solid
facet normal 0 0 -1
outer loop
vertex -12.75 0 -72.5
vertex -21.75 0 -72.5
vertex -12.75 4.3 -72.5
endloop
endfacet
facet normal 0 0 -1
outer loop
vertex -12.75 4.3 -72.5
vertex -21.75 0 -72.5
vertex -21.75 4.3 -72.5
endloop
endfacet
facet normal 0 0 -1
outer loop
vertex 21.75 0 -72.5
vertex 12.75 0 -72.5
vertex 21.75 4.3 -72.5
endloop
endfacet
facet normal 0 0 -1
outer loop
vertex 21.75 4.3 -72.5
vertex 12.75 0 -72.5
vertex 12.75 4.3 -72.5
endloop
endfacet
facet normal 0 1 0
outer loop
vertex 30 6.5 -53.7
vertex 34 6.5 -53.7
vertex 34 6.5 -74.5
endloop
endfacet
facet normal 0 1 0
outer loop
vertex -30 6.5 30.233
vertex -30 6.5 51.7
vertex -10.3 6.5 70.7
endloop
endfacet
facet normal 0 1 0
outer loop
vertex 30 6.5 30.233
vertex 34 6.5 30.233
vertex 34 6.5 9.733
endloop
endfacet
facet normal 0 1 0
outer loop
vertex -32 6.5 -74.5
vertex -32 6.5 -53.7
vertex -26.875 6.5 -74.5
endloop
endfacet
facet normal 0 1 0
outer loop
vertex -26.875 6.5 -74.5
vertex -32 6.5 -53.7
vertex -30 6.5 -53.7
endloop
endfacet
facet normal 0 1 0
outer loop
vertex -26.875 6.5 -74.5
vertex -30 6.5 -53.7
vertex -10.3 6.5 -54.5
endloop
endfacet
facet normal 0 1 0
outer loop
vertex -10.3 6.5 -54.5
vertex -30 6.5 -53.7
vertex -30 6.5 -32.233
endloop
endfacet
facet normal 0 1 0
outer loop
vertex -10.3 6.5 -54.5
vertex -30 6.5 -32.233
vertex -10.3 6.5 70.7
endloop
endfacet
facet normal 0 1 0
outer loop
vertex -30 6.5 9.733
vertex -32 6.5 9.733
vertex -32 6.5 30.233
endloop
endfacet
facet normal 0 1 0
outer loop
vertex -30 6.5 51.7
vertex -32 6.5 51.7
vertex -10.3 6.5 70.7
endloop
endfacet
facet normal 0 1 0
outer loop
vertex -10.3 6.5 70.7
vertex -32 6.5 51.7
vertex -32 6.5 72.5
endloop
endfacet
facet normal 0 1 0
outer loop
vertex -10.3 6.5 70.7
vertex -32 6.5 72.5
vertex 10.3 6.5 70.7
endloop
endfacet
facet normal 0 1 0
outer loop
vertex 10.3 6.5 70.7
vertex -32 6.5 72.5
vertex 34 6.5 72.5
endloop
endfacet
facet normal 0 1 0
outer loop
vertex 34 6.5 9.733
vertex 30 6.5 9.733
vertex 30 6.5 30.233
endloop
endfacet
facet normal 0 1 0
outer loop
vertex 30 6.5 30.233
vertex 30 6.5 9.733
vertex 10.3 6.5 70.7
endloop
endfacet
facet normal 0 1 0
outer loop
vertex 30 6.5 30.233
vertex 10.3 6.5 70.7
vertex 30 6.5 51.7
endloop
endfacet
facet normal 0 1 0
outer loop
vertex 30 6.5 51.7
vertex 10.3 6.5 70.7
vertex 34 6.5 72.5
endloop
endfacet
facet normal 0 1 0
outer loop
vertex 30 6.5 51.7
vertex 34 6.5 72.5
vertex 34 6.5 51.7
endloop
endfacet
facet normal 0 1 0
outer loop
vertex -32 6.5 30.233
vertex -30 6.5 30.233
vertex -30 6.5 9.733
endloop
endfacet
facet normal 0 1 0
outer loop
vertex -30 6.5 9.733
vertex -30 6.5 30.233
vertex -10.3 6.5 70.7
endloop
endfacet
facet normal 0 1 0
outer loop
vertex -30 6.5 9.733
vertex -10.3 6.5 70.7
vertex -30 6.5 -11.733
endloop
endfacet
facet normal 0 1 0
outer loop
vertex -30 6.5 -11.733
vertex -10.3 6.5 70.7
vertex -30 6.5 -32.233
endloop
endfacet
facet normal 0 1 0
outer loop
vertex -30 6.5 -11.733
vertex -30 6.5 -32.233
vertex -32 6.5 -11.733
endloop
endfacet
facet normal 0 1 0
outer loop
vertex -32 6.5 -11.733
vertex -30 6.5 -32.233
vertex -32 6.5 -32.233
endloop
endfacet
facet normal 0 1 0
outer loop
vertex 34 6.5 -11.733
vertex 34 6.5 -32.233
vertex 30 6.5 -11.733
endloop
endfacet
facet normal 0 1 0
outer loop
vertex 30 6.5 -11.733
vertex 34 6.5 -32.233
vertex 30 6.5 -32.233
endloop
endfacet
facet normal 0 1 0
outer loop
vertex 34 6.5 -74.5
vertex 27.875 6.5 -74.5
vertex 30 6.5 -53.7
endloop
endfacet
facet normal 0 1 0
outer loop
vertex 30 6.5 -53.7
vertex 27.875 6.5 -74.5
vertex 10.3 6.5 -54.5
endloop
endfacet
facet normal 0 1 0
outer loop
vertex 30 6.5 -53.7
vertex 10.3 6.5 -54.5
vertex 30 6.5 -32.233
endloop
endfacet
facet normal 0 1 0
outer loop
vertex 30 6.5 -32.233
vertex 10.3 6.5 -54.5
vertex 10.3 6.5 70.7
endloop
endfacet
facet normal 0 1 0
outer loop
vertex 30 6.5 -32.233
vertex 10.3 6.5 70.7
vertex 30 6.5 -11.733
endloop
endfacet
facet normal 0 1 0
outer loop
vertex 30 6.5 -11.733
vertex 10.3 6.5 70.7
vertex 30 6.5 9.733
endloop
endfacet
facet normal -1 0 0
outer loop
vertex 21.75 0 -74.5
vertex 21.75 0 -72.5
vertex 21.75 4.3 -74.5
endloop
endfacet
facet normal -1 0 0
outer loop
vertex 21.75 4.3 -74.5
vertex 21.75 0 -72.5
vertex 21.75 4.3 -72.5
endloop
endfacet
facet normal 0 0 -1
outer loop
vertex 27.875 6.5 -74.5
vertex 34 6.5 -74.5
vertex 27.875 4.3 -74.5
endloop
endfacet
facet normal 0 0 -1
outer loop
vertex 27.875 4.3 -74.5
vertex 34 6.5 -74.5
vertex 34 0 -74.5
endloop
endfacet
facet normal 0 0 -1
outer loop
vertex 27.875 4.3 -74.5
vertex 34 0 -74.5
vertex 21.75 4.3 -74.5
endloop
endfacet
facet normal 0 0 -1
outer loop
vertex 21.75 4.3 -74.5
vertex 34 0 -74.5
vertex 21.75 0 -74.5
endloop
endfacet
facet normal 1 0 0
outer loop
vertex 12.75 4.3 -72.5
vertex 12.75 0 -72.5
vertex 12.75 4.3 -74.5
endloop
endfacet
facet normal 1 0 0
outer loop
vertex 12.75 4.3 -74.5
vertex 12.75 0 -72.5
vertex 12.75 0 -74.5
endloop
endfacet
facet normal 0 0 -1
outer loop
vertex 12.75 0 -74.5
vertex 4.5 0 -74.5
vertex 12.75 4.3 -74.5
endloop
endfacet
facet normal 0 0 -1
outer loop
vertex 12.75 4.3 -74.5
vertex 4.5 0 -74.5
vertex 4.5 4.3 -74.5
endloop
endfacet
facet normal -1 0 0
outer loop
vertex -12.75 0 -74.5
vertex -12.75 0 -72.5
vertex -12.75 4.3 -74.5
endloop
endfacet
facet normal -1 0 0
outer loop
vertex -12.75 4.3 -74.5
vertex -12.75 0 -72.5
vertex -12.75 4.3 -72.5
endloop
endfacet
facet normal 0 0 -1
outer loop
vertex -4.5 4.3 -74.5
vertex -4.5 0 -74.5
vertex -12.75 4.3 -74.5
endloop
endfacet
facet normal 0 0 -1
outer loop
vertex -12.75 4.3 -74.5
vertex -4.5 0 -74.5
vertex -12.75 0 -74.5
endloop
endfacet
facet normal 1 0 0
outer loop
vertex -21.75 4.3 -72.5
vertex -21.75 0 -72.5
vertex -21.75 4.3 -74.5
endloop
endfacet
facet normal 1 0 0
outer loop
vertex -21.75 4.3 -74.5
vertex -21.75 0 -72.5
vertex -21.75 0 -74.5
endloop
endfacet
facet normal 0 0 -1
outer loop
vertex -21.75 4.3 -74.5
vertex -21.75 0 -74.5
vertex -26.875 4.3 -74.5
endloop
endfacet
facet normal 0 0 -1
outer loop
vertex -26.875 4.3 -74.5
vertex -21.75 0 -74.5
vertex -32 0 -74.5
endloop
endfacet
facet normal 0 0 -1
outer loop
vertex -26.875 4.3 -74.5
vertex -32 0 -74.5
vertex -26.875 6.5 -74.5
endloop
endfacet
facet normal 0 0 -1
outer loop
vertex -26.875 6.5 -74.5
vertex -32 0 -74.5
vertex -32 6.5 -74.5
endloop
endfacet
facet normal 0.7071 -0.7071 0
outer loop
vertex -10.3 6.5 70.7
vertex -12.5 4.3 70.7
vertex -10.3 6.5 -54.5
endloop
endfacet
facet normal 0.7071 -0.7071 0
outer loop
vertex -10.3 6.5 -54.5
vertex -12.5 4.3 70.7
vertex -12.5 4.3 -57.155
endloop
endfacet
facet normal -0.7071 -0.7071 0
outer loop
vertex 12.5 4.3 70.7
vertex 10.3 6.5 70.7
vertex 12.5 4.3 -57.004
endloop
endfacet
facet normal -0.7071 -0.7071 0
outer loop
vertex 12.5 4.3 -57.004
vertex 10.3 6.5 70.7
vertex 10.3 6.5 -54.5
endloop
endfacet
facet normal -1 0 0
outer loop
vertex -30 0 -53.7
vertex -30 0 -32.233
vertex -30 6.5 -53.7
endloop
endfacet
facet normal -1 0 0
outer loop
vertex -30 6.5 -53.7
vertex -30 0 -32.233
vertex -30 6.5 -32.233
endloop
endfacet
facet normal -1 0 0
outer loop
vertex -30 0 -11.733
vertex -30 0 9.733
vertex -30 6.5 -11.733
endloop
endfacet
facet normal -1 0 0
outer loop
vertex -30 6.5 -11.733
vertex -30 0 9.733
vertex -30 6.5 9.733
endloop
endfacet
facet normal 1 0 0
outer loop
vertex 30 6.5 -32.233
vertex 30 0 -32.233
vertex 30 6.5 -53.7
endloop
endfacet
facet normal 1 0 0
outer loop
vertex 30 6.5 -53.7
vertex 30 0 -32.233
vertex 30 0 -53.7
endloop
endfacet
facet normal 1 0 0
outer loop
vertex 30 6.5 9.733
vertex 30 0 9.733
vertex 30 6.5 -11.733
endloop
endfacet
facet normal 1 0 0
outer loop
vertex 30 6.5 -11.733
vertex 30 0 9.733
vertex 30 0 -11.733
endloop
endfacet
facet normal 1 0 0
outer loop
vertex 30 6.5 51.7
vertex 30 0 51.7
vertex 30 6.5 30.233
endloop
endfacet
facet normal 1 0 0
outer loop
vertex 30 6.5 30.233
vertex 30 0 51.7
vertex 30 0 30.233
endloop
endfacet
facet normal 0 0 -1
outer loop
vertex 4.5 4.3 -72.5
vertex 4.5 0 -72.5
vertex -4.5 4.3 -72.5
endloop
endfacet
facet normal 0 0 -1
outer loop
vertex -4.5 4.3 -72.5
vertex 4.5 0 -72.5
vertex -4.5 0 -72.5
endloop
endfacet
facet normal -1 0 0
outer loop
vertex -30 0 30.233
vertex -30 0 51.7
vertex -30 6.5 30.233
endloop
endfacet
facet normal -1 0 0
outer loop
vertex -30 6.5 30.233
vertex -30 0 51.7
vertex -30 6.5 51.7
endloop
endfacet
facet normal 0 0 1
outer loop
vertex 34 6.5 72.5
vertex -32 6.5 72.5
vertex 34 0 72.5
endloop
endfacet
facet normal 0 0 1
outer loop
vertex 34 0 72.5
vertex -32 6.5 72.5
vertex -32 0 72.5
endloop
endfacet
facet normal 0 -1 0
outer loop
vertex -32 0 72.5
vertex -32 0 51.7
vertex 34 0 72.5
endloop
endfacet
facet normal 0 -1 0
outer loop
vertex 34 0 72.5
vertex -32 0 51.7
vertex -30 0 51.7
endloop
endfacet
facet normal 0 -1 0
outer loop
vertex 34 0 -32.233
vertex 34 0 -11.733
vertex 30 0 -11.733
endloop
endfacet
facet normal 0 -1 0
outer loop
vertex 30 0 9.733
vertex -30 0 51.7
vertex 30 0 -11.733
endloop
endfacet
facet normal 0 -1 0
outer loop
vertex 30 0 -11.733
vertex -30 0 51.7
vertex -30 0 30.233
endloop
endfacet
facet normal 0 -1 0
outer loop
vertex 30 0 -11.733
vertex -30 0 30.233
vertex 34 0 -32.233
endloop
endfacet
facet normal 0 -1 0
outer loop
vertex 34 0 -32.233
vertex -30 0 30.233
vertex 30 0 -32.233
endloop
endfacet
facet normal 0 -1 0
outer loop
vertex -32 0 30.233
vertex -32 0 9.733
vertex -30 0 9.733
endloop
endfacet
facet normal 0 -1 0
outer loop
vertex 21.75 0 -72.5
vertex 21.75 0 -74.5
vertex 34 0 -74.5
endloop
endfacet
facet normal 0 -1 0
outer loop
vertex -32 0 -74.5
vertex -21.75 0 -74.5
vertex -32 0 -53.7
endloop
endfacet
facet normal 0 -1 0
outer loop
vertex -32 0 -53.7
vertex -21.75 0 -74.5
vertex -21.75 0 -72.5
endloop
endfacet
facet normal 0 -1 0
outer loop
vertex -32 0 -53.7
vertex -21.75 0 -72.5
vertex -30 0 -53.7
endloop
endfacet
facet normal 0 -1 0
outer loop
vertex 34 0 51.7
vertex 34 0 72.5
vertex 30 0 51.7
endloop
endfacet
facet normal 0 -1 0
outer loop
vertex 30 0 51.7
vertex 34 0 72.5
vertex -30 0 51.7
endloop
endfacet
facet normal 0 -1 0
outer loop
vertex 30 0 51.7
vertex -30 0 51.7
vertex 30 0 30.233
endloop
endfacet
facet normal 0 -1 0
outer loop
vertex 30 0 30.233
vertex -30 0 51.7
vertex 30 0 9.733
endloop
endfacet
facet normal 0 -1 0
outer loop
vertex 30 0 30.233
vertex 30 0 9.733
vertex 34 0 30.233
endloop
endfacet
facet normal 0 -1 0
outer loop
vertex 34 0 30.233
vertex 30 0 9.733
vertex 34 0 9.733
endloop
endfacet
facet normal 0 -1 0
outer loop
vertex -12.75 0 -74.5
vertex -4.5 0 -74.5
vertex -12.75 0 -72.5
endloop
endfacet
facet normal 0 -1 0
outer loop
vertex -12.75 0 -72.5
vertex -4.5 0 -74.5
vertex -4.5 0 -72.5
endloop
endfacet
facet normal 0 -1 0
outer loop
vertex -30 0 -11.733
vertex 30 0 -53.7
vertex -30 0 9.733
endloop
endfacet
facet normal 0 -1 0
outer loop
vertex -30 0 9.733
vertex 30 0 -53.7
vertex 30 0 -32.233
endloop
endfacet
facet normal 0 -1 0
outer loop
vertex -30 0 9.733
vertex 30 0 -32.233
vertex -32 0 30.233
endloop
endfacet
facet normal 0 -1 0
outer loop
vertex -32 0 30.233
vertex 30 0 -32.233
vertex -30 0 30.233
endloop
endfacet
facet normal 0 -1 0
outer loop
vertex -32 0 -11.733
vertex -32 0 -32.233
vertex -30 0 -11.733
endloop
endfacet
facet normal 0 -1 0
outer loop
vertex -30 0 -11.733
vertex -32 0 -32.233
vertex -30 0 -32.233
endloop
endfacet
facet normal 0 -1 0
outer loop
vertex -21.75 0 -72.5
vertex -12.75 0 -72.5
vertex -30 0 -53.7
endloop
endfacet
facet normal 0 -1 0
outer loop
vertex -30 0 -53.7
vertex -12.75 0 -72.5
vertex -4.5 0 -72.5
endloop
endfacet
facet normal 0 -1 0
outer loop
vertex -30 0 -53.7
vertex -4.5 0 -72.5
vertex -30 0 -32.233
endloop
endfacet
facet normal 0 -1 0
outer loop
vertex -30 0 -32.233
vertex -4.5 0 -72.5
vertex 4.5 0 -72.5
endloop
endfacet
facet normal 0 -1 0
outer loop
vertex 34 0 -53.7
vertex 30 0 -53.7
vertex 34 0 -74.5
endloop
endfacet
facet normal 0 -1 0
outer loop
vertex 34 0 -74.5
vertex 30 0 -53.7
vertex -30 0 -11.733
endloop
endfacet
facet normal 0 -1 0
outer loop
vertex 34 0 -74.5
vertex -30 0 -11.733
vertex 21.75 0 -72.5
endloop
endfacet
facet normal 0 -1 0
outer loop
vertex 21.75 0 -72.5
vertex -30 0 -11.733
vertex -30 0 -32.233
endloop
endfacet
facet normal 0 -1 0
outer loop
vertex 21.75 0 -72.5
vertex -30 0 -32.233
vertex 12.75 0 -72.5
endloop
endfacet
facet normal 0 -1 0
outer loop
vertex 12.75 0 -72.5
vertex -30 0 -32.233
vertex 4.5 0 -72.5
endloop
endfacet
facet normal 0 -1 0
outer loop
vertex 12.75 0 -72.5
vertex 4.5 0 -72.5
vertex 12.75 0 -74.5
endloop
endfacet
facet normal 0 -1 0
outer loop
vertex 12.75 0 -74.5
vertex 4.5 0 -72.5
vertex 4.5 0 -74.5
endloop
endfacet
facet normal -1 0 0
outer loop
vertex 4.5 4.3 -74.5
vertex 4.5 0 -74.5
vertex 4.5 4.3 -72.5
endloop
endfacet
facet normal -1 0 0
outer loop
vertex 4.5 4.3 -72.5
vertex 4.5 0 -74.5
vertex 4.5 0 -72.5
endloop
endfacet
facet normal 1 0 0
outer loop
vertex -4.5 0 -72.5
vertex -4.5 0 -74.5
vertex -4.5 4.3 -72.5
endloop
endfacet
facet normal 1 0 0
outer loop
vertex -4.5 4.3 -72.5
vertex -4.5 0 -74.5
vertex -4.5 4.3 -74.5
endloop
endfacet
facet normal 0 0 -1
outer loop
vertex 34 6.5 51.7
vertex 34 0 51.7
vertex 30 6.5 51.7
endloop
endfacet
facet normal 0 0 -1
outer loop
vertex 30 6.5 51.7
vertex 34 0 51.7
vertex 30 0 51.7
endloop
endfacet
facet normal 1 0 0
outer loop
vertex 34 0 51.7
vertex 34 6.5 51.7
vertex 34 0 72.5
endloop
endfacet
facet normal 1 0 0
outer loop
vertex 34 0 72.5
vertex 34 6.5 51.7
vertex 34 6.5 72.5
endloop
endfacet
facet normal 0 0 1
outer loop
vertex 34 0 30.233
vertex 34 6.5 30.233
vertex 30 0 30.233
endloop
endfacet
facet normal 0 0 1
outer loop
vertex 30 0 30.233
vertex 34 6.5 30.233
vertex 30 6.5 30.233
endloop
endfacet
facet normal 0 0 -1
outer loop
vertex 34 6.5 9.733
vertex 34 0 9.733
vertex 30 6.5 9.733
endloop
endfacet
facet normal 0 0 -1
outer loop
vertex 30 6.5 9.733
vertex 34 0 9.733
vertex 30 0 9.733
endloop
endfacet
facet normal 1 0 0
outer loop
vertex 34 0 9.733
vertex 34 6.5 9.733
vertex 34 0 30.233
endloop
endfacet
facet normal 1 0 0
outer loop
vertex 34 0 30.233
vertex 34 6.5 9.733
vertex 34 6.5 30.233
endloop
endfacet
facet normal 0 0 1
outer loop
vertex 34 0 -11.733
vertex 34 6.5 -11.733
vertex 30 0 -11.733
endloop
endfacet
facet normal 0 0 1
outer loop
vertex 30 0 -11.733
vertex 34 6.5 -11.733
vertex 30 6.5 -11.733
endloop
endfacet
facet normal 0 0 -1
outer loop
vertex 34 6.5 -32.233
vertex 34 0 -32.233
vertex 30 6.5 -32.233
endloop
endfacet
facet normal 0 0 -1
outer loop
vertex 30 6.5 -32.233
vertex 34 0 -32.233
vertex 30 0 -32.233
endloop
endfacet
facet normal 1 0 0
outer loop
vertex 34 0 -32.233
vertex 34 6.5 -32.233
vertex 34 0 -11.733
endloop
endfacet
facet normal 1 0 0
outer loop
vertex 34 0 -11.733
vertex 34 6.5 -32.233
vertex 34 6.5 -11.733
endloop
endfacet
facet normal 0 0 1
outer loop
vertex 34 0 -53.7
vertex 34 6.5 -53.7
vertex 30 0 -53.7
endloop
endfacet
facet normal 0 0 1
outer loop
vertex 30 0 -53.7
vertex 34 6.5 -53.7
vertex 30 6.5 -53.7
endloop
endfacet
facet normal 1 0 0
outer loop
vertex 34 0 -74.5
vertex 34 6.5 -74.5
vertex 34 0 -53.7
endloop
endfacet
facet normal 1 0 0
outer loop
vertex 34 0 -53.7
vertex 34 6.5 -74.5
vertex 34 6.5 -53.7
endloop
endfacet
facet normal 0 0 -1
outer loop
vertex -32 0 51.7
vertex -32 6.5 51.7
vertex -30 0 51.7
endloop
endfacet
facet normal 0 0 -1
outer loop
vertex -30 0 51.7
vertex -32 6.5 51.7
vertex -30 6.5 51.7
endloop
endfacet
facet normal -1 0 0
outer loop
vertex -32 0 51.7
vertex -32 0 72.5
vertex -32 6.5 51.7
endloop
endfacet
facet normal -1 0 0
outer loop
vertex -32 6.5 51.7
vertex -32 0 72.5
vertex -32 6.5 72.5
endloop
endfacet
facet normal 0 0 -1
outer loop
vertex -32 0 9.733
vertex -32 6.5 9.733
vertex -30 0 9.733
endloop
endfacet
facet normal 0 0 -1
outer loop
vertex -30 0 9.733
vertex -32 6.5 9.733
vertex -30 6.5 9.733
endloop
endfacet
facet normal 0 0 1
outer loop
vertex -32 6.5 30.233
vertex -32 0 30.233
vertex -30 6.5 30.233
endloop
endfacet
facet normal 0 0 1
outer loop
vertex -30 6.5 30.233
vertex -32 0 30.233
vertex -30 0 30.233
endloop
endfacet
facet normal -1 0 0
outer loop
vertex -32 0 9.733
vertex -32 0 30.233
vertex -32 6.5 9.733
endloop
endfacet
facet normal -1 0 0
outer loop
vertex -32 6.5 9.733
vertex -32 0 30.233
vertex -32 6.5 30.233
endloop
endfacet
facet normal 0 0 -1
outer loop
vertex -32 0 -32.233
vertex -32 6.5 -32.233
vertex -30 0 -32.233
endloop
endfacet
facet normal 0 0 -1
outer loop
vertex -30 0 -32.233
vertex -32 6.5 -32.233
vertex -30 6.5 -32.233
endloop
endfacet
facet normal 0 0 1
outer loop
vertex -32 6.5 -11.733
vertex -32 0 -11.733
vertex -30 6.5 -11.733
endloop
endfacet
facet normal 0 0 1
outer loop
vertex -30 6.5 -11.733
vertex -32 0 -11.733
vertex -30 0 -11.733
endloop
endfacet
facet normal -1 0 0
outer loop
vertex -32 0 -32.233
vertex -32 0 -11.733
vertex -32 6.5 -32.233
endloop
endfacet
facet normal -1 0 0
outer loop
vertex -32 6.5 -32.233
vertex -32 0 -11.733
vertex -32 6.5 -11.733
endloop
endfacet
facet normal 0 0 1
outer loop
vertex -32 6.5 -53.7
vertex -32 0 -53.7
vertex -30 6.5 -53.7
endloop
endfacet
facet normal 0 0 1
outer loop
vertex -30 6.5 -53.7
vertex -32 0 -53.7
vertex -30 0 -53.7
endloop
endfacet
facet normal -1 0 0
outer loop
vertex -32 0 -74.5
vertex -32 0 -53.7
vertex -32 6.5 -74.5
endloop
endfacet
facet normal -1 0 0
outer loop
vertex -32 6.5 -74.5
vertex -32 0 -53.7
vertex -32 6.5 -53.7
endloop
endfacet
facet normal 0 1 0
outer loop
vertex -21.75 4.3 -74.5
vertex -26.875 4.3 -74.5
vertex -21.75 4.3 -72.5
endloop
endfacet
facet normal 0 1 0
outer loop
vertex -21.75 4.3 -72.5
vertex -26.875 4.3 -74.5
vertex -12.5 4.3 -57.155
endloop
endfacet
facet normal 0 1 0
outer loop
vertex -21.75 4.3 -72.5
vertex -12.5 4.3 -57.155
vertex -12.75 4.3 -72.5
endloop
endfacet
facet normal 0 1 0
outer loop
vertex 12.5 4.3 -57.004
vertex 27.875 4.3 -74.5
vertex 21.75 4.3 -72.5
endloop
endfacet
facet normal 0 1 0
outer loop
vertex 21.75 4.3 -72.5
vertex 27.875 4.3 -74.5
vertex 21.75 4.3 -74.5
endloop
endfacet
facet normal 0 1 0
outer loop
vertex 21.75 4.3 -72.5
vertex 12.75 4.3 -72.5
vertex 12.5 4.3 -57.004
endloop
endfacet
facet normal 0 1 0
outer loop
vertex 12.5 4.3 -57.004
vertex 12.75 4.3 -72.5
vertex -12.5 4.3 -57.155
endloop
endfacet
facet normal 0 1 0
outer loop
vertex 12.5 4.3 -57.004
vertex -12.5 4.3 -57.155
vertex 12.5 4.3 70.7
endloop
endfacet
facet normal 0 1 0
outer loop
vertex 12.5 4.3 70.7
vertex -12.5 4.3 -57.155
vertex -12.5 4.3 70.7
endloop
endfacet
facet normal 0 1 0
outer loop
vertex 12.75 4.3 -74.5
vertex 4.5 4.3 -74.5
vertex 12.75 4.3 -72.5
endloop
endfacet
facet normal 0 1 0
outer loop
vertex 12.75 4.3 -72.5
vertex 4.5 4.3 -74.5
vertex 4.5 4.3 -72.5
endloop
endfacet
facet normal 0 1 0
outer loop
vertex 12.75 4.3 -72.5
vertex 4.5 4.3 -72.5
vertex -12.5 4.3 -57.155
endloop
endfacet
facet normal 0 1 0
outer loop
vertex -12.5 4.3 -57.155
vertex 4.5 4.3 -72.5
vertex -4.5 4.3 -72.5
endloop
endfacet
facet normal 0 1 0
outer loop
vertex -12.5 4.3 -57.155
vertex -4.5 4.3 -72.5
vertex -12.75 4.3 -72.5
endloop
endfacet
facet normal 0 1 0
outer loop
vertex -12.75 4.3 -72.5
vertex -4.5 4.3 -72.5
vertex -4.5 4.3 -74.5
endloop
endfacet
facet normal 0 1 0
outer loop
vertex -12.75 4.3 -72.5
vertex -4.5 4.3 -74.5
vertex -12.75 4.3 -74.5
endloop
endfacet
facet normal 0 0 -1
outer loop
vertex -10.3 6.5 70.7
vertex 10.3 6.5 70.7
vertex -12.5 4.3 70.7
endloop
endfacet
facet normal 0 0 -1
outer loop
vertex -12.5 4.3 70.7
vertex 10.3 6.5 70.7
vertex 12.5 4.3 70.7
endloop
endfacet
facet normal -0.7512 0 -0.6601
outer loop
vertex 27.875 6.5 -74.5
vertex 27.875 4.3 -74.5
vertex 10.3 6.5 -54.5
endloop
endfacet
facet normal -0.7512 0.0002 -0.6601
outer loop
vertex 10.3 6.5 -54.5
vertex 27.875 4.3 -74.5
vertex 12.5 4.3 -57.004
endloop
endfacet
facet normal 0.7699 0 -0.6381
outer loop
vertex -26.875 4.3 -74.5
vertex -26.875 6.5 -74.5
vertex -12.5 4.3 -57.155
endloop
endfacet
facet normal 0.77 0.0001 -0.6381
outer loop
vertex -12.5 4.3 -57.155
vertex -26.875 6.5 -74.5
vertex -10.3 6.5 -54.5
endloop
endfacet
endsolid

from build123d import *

# Parameters (mm, degrees)
SKETCH_4_W          = 60
SKETCH_4_H          = 145
EXTRUDE_1_DEPTH     = 6.5
SKETCH_5_W          = 8.25
SKETCH_5_H          = 6.5
EXTRUDE_2_DEPTH     = 2
SKETCH_7_W          = 20.8
SKETCH_7_H          = 6.5
SKETCH_7_W_2        = 20.5
EXTRUDE_3_DEPTH     = 4
EXTRUDE_START       = -60
SKETCH_7_2_W        = 20.8
SKETCH_7_2_H        = 6.5
SKETCH_7_2_W_2      = 20.5
EXTRUDE_4_DEPTH     = 2
CUT_EXTRUDE_START   = -1.8
CUT_EXTRUDE_1_DEPTH = 150.220693946
CUT_EXTRUDE_2_DEPTH = 83.004512071


with BuildPart() as part:
    # 草图4 → 凸台-拉伸1 (new body)
    with BuildSketch(Plane(origin=(0, 0, 0), x_dir=(1, 0, 0), z_dir=(0, 1, 0))):
        Rectangle(SKETCH_4_W, SKETCH_4_H)
    extrude(amount=EXTRUDE_1_DEPTH)

    # 草图5 → 凸台-拉伸2 (add)
    with BuildSketch(Plane(origin=(0, 0, -72.5), x_dir=(-1, 0, 0), z_dir=(0, 0, -1))):
        with Locations((-25.875, 3.25)):
            Rectangle(SKETCH_5_W, SKETCH_5_H)
        with Locations((-8.625, 3.25)):
            Rectangle(SKETCH_5_W, SKETCH_5_H)
        with Locations((8.625, 3.25)):
            Rectangle(SKETCH_5_W, SKETCH_5_H)
        with Locations((25.875, 3.25)):
            Rectangle(SKETCH_5_W, SKETCH_5_H)
    extrude(amount=EXTRUDE_2_DEPTH)

    # 草图7 → 凸台-拉伸3 (add)
    with BuildSketch(Plane(origin=(30, 0, 0), x_dir=(0, 0, -1), z_dir=(1, 0, 0))):
        with Locations((-62.1, 3.25)):
            Rectangle(SKETCH_7_W, SKETCH_7_H)
        with Locations((-19.983333333, 3.25)):
            Rectangle(SKETCH_7_W_2, SKETCH_7_H)
        with Locations((21.983333333, 3.25)):
            Rectangle(SKETCH_7_W_2, SKETCH_7_H)
        with Locations((64.1, 3.25)):
            Rectangle(SKETCH_7_W, SKETCH_7_H)
    extrude(amount=EXTRUDE_3_DEPTH)

    # 草图7<2> → 凸台-拉伸4 (add)
    with BuildSketch(Plane(origin=(30, 0, 0), x_dir=(0, 0, -1), z_dir=(1, 0, 0)).offset(EXTRUDE_START)):
        with Locations((-62.1, 3.25)):
            Rectangle(SKETCH_7_2_W, SKETCH_7_2_H)
        with Locations((-19.983333333, 3.25)):
            Rectangle(SKETCH_7_2_W_2, SKETCH_7_2_H)
        with Locations((21.983333333, 3.25)):
            Rectangle(SKETCH_7_2_W_2, SKETCH_7_2_H)
        with Locations((64.1, 3.25)):
            Rectangle(SKETCH_7_2_W, SKETCH_7_2_H)
    extrude(amount=-EXTRUDE_4_DEPTH)

    # 草图8 → 切除-拉伸1 (cut, through all)
    with BuildSketch(Plane.XY.offset(72.5).offset(CUT_EXTRUDE_START)):
        Polygon((10.3, 6.5), (-10.3, 6.5), (-12.5, 4.3), (-10.3, 4.3), (10.3, 4.3), (12.5, 4.3), align=None)
    extrude(amount=-CUT_EXTRUDE_1_DEPTH, mode=Mode.SUBTRACT)

    # 草图9 → 切除-拉伸2 (cut, through all)
    with BuildSketch(Plane(origin=(0, 4.3, 0), x_dir=(1, 0, 0), z_dir=(0, 1, 0))):
        Polygon((-26.875, 74.5), (-10.3, 54.5), (10.3, 54.5), (27.875, 74.5), align=None)
    extrude(amount=CUT_EXTRUDE_2_DEPTH, mode=Mode.SUBTRACT)


solid = part.part
